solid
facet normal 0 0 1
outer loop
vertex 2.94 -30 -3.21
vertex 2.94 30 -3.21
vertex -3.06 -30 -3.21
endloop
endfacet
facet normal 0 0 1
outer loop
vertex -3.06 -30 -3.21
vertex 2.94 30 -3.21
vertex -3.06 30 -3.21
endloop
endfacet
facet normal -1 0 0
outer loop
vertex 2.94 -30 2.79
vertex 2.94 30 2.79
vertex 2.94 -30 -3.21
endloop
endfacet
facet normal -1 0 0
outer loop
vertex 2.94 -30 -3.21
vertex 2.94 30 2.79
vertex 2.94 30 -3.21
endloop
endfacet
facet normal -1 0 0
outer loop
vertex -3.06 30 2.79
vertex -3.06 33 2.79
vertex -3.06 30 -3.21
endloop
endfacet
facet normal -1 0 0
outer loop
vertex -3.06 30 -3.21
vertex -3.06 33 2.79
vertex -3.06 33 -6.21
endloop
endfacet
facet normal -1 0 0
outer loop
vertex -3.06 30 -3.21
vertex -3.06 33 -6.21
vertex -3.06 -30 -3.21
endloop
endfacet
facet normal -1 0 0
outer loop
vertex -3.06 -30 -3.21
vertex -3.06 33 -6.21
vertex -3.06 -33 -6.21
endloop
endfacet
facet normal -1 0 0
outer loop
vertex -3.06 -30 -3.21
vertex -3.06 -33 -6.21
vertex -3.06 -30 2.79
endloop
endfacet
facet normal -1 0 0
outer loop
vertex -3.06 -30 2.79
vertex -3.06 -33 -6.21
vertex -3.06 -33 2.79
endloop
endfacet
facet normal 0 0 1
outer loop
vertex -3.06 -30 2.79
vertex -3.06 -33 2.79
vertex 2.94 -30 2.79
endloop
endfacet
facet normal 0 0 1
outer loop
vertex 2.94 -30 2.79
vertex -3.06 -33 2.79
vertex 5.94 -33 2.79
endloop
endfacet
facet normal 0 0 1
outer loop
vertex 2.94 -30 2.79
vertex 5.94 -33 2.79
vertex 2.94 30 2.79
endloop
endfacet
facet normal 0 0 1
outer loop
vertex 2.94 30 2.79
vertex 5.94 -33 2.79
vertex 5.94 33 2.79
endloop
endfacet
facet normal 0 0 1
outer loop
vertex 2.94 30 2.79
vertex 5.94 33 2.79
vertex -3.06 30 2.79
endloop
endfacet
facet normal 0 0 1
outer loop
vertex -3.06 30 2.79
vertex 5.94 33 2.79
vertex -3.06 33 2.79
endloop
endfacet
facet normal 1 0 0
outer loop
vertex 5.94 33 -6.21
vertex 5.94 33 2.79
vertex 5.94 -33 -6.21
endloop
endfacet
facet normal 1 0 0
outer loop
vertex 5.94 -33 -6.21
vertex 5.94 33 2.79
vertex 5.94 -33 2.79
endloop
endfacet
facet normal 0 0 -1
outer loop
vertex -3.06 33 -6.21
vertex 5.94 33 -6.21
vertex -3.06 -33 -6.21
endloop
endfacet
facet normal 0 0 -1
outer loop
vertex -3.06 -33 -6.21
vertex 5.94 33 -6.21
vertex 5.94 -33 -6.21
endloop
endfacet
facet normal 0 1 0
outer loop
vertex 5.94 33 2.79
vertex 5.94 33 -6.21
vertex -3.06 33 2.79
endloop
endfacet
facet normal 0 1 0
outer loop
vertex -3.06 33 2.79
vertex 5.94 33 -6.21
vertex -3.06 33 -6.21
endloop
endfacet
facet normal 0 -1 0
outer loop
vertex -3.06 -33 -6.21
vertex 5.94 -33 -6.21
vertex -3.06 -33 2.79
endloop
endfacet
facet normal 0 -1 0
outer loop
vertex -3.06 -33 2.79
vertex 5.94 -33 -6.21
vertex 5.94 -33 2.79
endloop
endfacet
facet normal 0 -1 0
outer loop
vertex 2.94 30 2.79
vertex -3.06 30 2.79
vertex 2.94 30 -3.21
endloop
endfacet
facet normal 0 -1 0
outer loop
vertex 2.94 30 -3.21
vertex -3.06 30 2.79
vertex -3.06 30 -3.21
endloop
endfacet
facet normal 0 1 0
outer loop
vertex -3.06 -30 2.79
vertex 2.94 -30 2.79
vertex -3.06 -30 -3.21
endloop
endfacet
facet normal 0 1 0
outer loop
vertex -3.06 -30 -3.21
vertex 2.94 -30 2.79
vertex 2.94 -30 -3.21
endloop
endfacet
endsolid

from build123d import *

# Parameters (mm, degrees)
SALIENTE_EXTRUIR1_DEPTH = 33
CROQUIS2_W              = 6
CROQUIS2_H              = 3
SALIENTE_EXTRUIR2_DEPTH = 6


with BuildPart() as part:
    # Croquis1 → Saliente-Extruir1 (new, symmetric)
    with BuildSketch(Plane(origin=(0, 0, 0), x_dir=(1, 0, 0), z_dir=(0, 1, 0))):
        Polygon((-3.06, 6.21), (5.94, 6.21), (5.94, -2.79), (2.94, -2.79), (2.94, 3.21), (-3.06, 3.21), align=None)
    extrude(amount=SALIENTE_EXTRUIR1_DEPTH, both=True)

    # Croquis2 → Saliente-Extruir2 (add, through all)
    with BuildSketch(Plane.XY.offset(-3.21)):
        with Locations((-0.06, 31.5)):
            Rectangle(CROQUIS2_W, CROQUIS2_H)
    saliente_extruir2 = extrude(amount=SALIENTE_EXTRUIR2_DEPTH)

    # Simetría1: Saliente-Extruir2 across plane
    add(saliente_extruir2.mirror(Plane.ZX))


solid = part.part
